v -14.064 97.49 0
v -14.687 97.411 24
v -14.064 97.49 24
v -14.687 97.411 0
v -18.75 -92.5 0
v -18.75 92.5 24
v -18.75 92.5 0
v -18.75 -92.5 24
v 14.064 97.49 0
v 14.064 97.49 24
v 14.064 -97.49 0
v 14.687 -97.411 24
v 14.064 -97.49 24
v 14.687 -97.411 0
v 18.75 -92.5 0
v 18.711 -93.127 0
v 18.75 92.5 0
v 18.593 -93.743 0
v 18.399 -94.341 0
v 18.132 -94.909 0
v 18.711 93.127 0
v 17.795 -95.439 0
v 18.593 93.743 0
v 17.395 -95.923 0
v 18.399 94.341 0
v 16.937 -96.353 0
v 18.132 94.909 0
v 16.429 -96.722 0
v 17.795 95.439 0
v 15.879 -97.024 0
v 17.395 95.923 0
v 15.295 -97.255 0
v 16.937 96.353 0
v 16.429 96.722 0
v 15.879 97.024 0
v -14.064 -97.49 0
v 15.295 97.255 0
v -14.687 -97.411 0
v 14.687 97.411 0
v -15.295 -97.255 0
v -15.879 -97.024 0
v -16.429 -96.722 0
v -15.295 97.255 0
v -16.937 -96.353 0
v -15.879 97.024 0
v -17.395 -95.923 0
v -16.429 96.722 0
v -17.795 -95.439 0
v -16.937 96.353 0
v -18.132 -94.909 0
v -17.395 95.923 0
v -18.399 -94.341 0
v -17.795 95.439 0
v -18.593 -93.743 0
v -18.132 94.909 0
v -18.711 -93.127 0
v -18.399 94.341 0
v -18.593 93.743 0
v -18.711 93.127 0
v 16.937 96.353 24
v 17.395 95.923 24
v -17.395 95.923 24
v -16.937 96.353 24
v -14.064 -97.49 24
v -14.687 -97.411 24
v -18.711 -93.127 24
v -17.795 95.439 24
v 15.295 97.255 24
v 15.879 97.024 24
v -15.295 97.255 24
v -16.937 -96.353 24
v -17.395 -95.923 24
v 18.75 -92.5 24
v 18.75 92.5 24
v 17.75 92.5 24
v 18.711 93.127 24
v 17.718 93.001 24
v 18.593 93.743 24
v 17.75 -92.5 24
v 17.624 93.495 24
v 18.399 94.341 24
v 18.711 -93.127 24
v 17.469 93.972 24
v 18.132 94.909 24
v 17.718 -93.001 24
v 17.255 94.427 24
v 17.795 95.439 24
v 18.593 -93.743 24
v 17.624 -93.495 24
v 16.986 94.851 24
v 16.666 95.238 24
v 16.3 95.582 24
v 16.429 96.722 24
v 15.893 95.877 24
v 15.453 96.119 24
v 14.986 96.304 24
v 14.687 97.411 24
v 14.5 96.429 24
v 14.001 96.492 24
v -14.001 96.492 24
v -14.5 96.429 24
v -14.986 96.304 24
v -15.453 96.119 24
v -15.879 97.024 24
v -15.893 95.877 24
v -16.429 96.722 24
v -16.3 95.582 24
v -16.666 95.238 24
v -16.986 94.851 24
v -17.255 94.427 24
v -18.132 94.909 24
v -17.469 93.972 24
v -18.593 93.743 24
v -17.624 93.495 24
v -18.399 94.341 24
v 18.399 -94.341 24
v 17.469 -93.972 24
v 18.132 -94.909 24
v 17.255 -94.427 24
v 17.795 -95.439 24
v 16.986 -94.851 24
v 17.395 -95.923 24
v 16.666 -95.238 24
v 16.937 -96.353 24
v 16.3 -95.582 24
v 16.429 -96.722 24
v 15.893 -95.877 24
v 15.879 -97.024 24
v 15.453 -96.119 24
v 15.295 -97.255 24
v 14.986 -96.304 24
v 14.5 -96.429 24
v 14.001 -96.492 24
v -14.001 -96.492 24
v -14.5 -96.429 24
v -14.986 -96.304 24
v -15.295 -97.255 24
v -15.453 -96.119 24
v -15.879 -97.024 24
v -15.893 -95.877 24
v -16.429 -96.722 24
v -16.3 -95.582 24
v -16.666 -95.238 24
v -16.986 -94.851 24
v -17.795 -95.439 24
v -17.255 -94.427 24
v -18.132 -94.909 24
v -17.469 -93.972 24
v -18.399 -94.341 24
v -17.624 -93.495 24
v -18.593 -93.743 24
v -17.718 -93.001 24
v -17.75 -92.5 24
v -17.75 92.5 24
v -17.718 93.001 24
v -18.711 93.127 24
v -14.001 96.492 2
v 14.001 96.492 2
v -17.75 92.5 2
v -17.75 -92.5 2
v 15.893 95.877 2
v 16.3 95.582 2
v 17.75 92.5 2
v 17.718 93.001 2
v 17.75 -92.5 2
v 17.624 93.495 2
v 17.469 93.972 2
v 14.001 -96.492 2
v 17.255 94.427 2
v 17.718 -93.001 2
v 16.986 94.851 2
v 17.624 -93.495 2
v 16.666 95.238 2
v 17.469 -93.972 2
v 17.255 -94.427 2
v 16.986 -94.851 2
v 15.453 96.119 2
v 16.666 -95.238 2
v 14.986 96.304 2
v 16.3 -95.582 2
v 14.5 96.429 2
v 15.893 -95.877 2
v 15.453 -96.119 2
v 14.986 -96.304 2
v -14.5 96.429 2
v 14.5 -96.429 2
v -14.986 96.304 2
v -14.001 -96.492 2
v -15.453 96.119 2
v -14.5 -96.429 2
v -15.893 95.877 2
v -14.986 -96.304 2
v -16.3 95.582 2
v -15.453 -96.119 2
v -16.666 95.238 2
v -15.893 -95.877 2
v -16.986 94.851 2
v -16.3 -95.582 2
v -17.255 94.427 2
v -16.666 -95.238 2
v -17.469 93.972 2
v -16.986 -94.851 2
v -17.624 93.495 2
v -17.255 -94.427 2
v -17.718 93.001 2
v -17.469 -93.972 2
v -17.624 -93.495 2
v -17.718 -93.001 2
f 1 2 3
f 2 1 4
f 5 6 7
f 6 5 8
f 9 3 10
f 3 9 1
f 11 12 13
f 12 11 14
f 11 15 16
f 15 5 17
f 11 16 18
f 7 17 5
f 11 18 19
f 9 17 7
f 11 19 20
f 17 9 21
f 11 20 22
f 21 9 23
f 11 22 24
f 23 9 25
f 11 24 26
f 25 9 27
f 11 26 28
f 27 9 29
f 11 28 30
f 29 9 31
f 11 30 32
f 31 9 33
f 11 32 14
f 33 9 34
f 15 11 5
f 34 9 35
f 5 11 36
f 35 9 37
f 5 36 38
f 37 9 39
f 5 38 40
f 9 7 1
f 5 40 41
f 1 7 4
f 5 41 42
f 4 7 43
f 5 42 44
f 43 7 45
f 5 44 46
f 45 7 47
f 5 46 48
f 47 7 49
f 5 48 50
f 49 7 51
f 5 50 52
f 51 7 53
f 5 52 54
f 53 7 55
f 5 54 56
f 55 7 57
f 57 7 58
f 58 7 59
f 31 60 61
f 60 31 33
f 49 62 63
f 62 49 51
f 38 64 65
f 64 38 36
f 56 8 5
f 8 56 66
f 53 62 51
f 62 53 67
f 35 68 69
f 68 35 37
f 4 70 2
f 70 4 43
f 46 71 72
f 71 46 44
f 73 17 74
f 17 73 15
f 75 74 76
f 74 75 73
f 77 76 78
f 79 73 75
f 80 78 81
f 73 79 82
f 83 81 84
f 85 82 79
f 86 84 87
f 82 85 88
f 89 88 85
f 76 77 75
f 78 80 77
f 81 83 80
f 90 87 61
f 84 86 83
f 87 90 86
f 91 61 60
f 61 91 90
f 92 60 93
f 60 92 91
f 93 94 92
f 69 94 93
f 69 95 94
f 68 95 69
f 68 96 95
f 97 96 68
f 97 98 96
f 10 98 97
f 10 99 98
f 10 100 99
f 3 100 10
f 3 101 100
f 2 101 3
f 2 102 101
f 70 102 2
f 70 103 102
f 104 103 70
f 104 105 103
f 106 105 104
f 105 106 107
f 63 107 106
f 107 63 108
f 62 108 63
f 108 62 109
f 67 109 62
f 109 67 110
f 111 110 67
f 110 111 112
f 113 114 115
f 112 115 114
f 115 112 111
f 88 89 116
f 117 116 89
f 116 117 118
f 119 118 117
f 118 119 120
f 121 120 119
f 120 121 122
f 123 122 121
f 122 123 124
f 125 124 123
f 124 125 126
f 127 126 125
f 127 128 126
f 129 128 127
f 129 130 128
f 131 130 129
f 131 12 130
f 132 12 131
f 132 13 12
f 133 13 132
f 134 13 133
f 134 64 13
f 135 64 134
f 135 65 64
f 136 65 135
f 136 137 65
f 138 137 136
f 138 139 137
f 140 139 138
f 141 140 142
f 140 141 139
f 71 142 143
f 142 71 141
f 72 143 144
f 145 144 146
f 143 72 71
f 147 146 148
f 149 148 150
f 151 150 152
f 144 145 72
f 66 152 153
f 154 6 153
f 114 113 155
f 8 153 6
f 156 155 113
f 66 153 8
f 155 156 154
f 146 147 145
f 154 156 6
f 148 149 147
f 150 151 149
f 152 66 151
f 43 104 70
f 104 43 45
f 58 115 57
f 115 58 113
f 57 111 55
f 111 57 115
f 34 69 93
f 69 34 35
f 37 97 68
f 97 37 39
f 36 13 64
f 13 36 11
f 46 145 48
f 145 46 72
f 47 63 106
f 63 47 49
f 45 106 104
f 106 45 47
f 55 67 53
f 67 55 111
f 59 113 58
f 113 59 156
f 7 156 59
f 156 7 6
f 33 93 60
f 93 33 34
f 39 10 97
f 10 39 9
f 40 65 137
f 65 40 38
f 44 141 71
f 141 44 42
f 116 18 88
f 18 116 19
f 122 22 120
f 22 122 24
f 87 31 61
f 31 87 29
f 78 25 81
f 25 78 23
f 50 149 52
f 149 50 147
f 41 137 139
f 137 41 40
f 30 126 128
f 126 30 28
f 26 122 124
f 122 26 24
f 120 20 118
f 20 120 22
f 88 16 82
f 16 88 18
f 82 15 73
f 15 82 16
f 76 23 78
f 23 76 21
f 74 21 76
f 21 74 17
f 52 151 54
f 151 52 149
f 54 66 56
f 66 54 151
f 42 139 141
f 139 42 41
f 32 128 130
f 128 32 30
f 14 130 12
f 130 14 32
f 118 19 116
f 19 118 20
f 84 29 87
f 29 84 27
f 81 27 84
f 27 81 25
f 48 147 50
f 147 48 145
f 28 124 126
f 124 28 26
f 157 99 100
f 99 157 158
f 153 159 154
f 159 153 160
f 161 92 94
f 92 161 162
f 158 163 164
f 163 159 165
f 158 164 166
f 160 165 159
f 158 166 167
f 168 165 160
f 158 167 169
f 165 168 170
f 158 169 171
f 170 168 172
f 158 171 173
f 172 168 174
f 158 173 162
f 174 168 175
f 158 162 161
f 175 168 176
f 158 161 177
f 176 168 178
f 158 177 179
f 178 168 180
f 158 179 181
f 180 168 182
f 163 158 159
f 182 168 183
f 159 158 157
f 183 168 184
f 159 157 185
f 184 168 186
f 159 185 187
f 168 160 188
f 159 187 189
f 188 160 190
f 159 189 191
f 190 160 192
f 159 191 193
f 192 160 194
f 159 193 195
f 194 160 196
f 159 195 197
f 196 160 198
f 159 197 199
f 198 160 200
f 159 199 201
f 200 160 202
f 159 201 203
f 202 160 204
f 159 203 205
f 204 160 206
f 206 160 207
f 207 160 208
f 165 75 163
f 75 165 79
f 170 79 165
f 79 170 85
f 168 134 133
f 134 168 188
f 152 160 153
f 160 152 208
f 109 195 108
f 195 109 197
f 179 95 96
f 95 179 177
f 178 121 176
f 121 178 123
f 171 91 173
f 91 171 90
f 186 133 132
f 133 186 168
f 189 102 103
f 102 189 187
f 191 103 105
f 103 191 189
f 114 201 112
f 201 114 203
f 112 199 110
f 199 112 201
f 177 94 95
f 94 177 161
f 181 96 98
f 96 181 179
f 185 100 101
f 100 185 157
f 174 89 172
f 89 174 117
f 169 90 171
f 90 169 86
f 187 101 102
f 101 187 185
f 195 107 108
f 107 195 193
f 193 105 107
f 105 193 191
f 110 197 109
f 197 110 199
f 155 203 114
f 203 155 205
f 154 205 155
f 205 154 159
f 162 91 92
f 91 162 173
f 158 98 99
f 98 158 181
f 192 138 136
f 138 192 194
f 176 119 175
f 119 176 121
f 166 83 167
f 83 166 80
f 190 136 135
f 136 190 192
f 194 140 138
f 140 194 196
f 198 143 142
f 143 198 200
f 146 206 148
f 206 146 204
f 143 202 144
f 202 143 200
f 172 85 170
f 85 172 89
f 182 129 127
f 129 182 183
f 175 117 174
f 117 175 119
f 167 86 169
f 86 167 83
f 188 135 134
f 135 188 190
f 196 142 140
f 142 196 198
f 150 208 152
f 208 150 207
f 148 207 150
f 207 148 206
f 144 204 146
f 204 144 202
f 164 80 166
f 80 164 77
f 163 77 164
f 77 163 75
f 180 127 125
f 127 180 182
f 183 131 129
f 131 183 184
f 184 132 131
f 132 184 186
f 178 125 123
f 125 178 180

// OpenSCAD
$fn = 50;


difference() {
	union() {
		hull() {
			translate(v = [-13.7500000000, 92.5000000000, 0]) {
				cylinder(h = 24, r = 5);
			}
			translate(v = [13.7500000000, 92.5000000000, 0]) {
				cylinder(h = 24, r = 5);
			}
			translate(v = [-13.7500000000, -92.5000000000, 0]) {
				cylinder(h = 24, r = 5);
			}
			translate(v = [13.7500000000, -92.5000000000, 0]) {
				cylinder(h = 24, r = 5);
			}
		}
	}
	union() {
		translate(v = [0, 0, 2]) {
			hull() {
				translate(v = [-13.7500000000, 92.5000000000, 0]) {
					cylinder(h = 22, r = 4);
				}
				translate(v = [13.7500000000, 92.5000000000, 0]) {
					cylinder(h = 22, r = 4);
				}
				translate(v = [-13.7500000000, -92.5000000000, 0]) {
					cylinder(h = 22, r = 4);
				}
				translate(v = [13.7500000000, -92.5000000000, 0]) {
					cylinder(h = 22, r = 4);
				}
			}
		}
	}
}
